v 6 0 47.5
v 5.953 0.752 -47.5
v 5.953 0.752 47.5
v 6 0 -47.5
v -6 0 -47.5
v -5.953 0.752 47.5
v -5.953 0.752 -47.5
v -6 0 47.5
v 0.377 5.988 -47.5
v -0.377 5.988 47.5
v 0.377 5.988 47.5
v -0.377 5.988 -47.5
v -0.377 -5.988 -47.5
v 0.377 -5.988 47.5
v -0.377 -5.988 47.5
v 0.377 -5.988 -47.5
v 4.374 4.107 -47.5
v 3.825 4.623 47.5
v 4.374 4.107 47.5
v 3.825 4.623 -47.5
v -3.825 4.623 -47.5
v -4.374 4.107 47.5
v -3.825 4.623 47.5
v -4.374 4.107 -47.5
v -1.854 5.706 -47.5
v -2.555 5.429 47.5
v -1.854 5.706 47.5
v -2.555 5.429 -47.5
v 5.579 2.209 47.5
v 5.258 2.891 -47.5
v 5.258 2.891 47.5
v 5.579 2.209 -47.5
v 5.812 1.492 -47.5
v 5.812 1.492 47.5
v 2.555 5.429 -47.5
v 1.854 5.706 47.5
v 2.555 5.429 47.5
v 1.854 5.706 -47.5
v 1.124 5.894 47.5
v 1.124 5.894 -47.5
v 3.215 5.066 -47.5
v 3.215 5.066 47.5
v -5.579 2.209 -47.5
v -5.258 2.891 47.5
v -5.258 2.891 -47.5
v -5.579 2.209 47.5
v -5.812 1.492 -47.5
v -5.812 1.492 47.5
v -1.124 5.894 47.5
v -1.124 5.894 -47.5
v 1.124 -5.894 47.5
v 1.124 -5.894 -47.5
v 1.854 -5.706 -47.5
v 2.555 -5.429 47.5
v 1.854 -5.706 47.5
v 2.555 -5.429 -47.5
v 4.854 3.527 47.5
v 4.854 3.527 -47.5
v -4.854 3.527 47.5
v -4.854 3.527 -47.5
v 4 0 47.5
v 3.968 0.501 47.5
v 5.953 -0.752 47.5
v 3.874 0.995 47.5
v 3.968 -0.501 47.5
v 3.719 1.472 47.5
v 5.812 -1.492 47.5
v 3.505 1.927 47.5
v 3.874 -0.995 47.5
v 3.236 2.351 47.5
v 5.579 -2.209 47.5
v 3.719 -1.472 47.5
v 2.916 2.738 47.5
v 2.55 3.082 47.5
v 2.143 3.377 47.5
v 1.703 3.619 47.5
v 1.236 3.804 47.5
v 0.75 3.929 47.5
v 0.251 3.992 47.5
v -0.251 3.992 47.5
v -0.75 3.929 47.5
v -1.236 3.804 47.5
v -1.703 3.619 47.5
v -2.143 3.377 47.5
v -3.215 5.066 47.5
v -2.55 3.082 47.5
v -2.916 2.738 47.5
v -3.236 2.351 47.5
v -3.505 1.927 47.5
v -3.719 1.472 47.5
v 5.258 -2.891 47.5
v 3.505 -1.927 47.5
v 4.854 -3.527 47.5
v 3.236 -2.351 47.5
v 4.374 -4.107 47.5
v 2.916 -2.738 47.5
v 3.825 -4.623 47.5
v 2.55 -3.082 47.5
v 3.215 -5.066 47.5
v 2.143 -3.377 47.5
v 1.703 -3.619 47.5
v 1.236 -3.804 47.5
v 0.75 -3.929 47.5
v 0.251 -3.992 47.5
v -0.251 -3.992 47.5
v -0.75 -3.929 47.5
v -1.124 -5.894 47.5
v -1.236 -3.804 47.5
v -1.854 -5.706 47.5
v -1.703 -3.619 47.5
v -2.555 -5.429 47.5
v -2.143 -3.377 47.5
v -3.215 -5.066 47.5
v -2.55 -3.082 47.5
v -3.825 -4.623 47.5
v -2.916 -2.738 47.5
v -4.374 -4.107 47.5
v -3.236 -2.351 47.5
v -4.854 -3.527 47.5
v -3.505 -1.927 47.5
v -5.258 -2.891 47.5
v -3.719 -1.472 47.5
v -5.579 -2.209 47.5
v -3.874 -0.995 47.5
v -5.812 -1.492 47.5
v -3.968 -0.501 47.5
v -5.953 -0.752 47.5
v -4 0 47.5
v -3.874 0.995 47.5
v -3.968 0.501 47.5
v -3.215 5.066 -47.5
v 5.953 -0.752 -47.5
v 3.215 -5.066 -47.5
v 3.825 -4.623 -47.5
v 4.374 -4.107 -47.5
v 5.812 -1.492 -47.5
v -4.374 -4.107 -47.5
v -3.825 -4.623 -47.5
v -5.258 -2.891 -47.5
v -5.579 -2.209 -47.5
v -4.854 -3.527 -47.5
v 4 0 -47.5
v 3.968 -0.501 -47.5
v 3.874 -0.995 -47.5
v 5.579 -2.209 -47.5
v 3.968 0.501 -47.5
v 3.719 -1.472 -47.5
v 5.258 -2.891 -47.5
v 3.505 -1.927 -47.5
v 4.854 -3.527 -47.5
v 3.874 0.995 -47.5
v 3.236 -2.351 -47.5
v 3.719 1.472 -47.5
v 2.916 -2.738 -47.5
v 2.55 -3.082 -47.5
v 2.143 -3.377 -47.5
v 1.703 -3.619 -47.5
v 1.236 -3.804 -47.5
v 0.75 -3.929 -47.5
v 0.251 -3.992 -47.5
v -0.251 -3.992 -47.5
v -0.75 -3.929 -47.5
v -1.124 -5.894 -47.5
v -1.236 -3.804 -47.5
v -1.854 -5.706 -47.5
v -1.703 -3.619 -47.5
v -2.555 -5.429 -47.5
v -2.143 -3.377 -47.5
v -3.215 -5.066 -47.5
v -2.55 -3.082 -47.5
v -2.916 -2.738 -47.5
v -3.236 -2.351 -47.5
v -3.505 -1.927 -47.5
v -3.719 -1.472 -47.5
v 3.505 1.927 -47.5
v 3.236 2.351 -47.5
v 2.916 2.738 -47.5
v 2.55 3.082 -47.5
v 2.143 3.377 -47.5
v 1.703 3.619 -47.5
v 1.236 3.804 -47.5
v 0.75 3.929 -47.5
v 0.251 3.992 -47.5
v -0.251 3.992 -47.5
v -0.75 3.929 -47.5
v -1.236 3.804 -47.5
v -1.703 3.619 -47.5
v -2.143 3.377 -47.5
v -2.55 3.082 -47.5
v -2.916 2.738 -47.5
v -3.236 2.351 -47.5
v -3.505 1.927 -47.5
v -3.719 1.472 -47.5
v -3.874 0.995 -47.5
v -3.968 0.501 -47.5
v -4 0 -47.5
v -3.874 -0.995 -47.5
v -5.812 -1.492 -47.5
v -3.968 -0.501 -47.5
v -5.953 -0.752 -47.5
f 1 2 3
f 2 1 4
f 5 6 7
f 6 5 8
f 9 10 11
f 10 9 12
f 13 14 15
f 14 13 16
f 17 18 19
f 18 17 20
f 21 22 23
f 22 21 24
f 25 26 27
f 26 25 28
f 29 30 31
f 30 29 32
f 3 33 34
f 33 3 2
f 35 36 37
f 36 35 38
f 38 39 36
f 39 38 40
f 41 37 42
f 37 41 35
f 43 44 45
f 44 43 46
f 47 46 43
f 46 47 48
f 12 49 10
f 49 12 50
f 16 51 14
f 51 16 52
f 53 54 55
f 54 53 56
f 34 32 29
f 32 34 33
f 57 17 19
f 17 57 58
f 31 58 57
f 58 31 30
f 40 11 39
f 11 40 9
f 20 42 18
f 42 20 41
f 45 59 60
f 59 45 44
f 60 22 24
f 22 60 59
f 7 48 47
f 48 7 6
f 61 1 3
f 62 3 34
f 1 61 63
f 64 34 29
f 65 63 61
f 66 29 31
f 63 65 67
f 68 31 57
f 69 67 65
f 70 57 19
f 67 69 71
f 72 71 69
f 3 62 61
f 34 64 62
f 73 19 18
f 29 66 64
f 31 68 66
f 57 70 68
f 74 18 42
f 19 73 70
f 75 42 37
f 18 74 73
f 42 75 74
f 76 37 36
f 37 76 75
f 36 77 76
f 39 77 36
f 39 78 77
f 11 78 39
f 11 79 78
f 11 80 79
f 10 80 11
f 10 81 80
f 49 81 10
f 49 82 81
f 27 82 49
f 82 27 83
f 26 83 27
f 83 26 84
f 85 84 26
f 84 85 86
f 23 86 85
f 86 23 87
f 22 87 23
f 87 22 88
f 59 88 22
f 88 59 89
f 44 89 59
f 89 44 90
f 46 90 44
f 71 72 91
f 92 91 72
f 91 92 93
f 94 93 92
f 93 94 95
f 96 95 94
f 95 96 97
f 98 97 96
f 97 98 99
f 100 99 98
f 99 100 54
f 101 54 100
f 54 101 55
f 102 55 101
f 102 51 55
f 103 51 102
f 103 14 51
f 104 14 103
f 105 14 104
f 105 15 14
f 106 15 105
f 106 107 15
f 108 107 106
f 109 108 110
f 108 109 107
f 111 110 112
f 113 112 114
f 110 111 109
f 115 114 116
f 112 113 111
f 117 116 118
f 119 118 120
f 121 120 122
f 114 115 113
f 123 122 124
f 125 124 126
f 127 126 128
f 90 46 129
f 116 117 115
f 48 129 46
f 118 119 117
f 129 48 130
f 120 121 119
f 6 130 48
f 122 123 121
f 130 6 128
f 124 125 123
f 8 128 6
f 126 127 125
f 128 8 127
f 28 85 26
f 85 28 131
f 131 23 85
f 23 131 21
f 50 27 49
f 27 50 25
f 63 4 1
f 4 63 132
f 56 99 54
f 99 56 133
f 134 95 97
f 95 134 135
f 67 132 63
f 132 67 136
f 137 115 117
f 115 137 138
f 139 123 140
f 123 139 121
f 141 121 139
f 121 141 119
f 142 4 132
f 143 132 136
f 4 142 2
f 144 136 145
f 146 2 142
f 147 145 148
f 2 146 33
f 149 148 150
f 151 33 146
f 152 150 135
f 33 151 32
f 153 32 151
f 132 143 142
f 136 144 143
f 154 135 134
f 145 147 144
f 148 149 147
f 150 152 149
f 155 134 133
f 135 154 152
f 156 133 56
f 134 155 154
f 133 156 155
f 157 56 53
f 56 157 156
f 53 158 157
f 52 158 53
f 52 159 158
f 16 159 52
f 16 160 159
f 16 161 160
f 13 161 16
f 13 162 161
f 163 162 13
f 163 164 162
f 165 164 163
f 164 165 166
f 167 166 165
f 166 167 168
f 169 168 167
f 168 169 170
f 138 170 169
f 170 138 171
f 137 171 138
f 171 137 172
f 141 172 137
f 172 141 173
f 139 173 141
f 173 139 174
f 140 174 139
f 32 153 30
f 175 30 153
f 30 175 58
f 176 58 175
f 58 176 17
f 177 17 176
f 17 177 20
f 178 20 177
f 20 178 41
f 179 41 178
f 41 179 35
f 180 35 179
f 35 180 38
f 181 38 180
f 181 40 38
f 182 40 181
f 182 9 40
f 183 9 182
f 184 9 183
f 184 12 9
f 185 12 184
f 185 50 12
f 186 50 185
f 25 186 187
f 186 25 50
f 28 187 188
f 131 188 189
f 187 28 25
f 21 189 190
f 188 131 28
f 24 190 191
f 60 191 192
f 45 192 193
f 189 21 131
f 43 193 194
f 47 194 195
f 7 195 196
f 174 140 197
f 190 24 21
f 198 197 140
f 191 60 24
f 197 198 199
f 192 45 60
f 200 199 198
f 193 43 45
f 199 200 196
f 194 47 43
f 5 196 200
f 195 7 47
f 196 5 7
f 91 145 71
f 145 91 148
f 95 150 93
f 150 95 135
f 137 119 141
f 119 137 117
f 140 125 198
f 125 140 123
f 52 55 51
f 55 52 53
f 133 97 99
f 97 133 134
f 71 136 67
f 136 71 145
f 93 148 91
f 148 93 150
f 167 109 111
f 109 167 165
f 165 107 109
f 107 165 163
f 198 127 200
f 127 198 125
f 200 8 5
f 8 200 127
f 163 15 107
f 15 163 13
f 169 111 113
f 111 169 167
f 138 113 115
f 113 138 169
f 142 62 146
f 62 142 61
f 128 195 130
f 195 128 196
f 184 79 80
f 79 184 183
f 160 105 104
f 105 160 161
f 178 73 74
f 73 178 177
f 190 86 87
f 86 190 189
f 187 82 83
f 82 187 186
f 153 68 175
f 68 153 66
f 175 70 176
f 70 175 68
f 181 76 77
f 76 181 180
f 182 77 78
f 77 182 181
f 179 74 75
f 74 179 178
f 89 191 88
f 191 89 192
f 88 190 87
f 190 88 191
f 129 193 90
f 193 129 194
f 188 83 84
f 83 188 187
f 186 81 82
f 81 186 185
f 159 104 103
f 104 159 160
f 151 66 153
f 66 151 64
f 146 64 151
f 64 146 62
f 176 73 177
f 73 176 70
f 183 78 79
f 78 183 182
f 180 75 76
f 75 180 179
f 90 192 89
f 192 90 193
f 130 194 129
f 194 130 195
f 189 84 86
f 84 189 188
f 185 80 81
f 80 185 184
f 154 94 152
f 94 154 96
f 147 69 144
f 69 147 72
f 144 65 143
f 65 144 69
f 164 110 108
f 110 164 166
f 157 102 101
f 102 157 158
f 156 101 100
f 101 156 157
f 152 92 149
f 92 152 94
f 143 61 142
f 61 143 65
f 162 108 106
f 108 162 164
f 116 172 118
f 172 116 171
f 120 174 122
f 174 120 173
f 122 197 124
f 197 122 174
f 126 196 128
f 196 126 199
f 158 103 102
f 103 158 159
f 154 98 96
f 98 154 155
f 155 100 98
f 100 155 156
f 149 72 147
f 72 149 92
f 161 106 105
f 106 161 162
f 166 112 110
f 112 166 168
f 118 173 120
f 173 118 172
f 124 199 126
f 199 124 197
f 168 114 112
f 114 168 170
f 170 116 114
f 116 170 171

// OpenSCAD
$fn = 50;


difference() {
	union() {
		translate(v = [0, 0, -47.5000000000]) {
			cylinder(h = 95, r = 6.0000000000);
		}
	}
	union() {
		translate(v = [0, 0, -100.0000000000]) {
			cylinder(h = 200, r = 4);
		}
	}
}
